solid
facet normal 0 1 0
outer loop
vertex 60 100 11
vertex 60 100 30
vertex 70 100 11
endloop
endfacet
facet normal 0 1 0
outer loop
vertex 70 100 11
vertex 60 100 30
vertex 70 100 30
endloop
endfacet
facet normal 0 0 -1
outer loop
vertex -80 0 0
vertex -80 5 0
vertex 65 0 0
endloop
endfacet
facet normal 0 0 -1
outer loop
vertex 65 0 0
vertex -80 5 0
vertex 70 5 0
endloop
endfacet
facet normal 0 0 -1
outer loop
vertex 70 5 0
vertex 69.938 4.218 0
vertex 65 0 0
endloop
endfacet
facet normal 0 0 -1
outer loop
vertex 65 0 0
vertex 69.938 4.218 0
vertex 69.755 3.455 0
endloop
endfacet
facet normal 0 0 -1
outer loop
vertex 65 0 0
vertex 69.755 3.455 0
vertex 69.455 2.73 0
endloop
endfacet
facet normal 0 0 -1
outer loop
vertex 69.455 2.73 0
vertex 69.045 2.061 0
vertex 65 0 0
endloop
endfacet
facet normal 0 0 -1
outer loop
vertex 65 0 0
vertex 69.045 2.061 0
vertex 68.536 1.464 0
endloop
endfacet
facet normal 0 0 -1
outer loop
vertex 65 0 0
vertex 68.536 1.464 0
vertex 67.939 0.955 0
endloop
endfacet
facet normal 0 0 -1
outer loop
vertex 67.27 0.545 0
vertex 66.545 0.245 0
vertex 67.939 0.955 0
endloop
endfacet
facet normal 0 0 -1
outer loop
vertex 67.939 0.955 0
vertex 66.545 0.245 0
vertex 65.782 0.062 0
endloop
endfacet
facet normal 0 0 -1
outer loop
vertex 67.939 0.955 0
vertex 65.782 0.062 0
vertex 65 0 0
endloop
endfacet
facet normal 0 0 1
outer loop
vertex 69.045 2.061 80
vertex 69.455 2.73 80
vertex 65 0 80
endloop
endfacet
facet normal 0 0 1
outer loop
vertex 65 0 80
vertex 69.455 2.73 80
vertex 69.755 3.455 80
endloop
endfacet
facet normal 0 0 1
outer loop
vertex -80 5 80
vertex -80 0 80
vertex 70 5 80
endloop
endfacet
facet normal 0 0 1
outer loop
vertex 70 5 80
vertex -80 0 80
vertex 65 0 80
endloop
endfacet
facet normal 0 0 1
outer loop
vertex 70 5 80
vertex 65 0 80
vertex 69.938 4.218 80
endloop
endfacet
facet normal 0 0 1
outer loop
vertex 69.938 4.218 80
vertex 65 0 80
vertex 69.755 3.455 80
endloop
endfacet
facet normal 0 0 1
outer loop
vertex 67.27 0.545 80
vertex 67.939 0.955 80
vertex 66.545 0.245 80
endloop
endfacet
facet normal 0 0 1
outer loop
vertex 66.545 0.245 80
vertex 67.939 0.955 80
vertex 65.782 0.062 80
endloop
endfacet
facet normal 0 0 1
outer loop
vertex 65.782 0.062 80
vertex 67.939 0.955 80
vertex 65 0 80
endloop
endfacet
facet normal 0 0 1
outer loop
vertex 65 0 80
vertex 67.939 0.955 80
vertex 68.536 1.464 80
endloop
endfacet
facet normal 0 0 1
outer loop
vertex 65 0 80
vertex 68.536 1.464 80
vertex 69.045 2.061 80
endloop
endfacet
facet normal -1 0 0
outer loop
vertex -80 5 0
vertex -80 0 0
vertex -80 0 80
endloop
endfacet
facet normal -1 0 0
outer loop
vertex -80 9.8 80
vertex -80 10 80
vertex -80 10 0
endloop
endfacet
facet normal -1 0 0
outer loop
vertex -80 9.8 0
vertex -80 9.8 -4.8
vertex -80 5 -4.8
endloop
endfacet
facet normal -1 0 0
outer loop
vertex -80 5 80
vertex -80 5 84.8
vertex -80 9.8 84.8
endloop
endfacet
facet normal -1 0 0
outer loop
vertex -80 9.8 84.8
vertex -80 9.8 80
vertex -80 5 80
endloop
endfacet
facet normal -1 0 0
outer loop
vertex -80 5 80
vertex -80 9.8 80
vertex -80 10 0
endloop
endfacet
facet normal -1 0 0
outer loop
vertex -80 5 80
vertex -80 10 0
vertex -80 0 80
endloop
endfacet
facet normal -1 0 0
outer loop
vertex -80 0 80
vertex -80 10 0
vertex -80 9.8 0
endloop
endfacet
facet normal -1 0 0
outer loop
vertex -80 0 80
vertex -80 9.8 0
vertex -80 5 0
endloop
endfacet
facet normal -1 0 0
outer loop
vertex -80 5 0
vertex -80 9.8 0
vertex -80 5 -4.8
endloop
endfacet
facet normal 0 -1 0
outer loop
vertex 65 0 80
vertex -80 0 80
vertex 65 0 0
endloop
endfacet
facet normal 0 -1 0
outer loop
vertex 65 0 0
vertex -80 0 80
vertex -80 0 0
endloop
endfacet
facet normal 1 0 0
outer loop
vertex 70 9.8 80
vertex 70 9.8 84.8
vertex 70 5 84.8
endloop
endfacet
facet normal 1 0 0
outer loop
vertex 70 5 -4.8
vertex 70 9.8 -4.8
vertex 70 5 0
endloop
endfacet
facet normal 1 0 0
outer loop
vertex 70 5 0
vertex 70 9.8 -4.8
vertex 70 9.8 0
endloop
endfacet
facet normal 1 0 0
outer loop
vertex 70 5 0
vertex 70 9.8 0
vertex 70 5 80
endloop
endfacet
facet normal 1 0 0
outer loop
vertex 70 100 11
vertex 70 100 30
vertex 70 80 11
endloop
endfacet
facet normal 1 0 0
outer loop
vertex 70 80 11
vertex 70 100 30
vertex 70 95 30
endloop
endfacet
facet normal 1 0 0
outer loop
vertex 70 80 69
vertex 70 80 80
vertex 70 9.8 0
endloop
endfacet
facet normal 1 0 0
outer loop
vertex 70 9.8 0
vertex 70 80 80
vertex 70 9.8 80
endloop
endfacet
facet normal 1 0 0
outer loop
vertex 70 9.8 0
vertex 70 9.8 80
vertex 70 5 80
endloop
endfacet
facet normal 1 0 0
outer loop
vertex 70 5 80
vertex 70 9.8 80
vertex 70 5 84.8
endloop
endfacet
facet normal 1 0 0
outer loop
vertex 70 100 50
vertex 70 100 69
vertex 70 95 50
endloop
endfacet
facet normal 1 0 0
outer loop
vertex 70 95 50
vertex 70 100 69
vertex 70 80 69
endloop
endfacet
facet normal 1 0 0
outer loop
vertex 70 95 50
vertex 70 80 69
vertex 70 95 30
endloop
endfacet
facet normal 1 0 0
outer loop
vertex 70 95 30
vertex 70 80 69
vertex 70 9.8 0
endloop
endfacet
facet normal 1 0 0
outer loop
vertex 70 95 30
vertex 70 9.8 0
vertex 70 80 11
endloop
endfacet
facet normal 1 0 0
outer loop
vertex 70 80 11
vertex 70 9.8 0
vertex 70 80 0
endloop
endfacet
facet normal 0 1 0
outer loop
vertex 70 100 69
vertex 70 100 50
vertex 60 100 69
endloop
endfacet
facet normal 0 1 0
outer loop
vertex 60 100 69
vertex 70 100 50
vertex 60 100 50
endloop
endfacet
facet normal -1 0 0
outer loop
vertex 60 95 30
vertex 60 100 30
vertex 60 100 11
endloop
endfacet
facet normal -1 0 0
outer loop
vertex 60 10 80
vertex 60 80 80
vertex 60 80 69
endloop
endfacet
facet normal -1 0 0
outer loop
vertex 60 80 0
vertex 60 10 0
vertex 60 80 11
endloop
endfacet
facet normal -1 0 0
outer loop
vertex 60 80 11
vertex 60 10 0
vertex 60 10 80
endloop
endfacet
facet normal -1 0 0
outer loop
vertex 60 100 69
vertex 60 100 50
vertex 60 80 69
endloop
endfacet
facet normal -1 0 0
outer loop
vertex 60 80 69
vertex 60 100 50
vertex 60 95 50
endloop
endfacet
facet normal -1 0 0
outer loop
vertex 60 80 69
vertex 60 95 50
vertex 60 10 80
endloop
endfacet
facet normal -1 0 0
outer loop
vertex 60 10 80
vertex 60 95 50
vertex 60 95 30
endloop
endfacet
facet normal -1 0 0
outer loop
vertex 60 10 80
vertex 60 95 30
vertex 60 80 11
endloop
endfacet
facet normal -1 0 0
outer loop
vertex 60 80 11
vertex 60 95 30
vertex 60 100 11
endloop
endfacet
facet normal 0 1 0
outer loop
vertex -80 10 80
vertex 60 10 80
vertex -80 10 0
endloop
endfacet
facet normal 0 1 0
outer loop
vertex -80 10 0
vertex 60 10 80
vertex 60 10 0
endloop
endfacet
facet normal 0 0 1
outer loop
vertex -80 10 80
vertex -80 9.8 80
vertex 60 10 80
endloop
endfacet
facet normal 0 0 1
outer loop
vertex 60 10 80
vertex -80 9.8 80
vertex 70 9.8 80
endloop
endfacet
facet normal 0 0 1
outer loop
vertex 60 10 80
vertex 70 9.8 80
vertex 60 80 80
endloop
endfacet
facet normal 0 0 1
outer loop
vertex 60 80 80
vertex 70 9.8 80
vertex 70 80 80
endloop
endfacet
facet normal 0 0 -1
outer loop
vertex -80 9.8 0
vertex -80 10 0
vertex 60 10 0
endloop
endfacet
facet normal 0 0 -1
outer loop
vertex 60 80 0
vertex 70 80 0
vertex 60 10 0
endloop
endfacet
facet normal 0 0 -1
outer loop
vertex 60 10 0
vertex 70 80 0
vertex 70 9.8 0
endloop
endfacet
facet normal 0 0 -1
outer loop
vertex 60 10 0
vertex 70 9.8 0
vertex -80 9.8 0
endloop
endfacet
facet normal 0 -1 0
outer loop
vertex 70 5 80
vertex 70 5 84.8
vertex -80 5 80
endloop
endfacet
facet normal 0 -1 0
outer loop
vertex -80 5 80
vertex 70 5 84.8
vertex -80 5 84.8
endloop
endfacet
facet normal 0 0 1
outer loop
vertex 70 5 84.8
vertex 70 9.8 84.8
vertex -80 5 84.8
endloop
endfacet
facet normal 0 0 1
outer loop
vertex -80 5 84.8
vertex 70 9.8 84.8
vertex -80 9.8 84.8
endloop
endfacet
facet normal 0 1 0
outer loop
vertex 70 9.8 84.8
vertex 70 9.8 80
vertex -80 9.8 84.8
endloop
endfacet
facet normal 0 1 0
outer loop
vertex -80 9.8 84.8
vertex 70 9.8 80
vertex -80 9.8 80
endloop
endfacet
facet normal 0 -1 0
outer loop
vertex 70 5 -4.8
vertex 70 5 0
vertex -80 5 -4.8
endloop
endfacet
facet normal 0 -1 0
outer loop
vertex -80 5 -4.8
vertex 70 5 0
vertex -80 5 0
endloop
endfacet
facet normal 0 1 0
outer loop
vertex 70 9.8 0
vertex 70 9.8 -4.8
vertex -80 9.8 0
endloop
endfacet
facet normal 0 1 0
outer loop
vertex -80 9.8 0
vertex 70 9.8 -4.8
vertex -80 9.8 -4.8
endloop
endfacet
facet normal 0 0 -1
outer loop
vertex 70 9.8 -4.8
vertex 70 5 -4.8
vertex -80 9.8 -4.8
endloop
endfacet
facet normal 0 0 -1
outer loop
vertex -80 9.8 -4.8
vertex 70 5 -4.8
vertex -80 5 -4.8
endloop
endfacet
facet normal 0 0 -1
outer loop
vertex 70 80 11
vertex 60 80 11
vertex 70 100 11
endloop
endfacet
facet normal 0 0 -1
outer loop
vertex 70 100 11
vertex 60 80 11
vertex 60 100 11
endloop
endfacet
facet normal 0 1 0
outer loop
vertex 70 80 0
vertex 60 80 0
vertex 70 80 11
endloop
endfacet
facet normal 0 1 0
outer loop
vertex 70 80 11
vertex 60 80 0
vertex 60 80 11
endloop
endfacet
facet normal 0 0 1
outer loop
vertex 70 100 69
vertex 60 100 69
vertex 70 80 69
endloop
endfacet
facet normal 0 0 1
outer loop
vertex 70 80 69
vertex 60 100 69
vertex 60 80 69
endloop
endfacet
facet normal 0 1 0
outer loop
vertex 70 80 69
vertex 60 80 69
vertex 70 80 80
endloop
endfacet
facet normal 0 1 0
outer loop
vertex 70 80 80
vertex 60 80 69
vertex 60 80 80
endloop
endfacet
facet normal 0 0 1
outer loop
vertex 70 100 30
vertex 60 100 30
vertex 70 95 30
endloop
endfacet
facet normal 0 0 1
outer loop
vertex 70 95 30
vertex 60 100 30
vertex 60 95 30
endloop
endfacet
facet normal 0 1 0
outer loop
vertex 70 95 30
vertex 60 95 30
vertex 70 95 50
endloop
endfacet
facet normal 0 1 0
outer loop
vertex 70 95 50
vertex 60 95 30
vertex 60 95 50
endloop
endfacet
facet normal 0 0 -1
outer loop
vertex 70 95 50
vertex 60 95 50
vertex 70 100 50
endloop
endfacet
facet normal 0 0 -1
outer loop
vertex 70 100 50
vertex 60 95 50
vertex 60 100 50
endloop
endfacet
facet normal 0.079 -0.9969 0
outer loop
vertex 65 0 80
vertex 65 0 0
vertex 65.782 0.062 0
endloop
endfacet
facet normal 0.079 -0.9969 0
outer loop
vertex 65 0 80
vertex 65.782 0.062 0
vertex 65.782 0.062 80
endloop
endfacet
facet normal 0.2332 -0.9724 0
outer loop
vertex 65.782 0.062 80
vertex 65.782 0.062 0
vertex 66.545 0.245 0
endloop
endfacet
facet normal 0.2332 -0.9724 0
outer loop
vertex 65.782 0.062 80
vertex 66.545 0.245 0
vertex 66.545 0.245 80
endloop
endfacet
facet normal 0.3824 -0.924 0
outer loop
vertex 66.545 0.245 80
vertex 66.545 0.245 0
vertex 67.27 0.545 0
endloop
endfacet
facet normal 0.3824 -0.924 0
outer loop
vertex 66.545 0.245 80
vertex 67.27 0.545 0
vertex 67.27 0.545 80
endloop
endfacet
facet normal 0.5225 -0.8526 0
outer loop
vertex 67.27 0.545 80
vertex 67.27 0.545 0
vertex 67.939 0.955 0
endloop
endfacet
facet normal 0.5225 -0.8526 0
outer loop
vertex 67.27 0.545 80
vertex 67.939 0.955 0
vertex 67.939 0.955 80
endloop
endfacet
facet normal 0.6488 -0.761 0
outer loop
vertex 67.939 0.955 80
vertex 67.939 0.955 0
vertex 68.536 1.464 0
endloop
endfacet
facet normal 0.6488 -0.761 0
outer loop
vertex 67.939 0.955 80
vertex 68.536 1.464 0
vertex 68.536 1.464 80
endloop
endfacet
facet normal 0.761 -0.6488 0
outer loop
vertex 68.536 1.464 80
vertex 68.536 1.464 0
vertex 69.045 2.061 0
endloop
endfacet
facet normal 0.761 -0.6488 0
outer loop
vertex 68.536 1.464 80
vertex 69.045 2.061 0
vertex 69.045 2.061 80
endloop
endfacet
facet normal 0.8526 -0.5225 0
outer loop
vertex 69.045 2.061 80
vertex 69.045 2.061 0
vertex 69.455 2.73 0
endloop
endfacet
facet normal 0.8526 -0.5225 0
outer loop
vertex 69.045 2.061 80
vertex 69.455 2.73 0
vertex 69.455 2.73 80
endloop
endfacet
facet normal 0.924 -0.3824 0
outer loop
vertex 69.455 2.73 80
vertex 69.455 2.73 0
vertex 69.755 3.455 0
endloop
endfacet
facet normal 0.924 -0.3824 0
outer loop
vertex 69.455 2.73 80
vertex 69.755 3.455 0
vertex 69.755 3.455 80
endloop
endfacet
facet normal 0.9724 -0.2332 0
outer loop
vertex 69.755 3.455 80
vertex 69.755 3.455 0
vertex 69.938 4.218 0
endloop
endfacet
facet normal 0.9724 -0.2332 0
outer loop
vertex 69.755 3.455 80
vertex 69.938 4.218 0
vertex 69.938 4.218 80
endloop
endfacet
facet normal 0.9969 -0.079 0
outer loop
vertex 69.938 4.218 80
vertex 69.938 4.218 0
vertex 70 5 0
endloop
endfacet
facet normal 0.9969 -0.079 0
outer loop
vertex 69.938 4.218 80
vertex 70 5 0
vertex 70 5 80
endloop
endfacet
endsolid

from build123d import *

# Parameters (mm, degrees)
BOSS_EXTRUDE1_DEPTH = 80
SKETCH2_W           = 4.8
SKETCH2_H           = 4.8
BOSS_EXTRUDE2_DEPTH = 150
SKETCH3_W           = 11
SKETCH3_H           = 20
CUT_EXTRUDE1_DEPTH  = 200.226102707
FILLET1_R           = 5


with BuildPart() as part:
    # Sketch1 → Boss-Extrude1 (new body)
    with BuildSketch(Plane.XY):
        Polygon((-80, 0), (70, 0), (70, 100), (60, 100), (60, 10), (-80, 10), align=None)
    extrude(amount=BOSS_EXTRUDE1_DEPTH)

    # Sketch2 → Boss-Extrude2 (add)
    with BuildSketch(Plane(origin=(70, 0, 0), x_dir=(0, 0, -1), z_dir=(1, 0, 0))):
        with Locations((-82.4, 7.4)):
            Rectangle(SKETCH2_W, SKETCH2_H)
        with Locations((2.4, 7.4)):
            Rectangle(SKETCH2_W, SKETCH2_H)
    extrude(amount=-BOSS_EXTRUDE2_DEPTH)

    # Sketch3 → Cut-Extrude1 (cut, through all)
    with BuildSketch(Plane(origin=(70, 0, 0), x_dir=(0, 0, -1), z_dir=(1, 0, 0))):
        Polygon((-40, 100), (-50, 100), (-50, 95), (-30, 95), (-30, 100), align=None)
        with Locations((-74.5, 90)):
            Rectangle(SKETCH3_W, SKETCH3_H)
        with Locations((-5.5, 90)):
            Rectangle(SKETCH3_W, SKETCH3_H)
    extrude(amount=-CUT_EXTRUDE1_DEPTH, mode=Mode.SUBTRACT)

    # Fillet1
    fillet1_edges = [part.edges().sort_by_distance(p)[0] for p in [
        (70, 0, 40),
    ]]
    fillet(fillet1_edges, radius=FILLET1_R)


solid = part.part
